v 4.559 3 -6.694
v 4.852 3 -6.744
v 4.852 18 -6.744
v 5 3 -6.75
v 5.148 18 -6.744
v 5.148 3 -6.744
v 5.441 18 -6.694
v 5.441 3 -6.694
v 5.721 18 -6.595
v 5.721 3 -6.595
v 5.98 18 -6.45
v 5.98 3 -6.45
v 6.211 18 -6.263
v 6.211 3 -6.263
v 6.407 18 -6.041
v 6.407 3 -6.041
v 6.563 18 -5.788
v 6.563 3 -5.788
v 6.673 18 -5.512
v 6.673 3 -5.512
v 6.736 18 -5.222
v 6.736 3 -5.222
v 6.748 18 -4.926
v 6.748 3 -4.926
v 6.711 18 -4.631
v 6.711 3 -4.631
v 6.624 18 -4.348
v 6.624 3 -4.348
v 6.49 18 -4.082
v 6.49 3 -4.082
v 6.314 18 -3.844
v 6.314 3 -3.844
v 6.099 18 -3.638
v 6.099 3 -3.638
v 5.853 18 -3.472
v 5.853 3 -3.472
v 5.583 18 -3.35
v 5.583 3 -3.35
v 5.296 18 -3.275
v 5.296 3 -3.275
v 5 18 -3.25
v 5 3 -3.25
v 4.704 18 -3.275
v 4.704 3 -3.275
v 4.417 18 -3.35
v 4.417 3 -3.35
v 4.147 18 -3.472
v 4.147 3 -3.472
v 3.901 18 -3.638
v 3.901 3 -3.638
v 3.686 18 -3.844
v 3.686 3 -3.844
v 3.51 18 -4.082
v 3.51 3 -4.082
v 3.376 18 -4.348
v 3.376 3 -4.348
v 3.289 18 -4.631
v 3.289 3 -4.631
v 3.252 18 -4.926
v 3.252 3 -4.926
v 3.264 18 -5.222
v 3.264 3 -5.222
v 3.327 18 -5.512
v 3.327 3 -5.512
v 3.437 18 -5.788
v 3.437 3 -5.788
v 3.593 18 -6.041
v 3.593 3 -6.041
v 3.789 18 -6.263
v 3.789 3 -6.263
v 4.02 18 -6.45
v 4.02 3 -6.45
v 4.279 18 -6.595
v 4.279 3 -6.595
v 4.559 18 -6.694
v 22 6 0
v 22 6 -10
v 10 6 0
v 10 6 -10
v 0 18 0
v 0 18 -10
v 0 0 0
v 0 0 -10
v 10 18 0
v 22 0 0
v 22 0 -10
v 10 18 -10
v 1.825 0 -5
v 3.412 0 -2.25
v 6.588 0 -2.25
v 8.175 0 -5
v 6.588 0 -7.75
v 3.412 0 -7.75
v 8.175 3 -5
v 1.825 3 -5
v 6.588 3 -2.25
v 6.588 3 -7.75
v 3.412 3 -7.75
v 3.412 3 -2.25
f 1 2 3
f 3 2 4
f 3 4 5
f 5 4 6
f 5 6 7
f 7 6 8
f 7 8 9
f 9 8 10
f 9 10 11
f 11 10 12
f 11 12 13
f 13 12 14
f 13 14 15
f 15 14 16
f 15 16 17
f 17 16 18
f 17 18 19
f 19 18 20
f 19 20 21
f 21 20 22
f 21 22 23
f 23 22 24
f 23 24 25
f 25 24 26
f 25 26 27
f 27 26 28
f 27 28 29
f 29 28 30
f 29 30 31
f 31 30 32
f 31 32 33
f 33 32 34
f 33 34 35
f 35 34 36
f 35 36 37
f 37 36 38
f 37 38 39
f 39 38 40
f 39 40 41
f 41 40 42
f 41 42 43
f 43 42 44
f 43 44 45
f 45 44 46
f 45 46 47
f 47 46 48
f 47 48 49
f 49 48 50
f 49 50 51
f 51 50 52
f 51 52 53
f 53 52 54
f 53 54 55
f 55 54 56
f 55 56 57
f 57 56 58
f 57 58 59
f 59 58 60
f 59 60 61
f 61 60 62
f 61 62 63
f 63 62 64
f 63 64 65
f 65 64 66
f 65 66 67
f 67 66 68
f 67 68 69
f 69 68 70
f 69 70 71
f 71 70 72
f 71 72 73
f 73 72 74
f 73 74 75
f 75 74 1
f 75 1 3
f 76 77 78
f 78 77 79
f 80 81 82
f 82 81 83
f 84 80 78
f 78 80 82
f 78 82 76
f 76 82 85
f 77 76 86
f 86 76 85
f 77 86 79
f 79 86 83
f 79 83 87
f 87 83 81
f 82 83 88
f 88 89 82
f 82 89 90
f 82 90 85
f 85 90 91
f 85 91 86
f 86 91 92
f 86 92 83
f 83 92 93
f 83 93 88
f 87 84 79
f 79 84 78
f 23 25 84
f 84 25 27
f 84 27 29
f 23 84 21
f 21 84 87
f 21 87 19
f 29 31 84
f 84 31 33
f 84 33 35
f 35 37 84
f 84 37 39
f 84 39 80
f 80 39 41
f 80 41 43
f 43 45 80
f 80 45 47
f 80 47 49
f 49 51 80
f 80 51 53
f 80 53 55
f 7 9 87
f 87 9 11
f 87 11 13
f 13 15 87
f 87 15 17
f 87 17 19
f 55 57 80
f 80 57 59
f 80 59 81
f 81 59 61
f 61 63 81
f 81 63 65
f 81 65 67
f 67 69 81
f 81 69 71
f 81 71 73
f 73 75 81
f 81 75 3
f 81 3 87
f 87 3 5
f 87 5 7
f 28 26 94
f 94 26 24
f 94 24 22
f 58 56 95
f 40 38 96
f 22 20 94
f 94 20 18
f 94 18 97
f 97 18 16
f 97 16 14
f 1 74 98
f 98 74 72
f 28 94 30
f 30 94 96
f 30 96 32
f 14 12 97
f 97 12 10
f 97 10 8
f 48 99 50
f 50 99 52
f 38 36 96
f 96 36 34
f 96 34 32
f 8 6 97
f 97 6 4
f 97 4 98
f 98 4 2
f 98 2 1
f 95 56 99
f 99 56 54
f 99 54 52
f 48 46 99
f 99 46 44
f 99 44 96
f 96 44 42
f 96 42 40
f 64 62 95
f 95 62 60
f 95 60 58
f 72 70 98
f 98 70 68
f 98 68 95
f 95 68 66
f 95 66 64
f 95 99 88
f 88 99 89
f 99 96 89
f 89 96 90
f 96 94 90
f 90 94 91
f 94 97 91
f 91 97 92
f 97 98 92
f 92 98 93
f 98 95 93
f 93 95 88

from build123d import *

# Parameters (mm, degrees)
SKETCH1_W           = 22
SKETCH1_H           = 10
BOSS_EXTRUDE1_DEPTH = 6
SKETCH2_W           = 10
SKETCH2_H           = 10
BOSS_EXTRUDE2_DEPTH = 12
SKETCH3_R           = 1.75
CUT_EXTRUDE1_DEPTH  = 31.133038347
CUT_EXTRUDE2_DEPTH  = 3


with BuildPart() as part:
    # Sketch1 → Boss-Extrude1 (new body)
    with BuildSketch(Plane(origin=(0, 0, 0), x_dir=(1, 0, 0), z_dir=(0, 1, 0))):
        with Locations((11, 5)):
            Rectangle(SKETCH1_W, SKETCH1_H)
    extrude(amount=BOSS_EXTRUDE1_DEPTH)

    # Sketch2 → Boss-Extrude2 (add)
    with BuildSketch(Plane(origin=(0, 6, 0), x_dir=(1, 0, 0), z_dir=(0, 1, 0))):
        with Locations((5, 5)):
            Rectangle(SKETCH2_W, SKETCH2_H)
    extrude(amount=BOSS_EXTRUDE2_DEPTH)

    # Sketch3 → Cut-Extrude1 (cut, through all)
    with BuildSketch(Plane(origin=(0, 18, 0), x_dir=(1, 0, 0), z_dir=(0, 1, 0))):
        with Locations(Location((5, 5, 0), (0, 0, 270))):
            Circle(SKETCH3_R)
    extrude(amount=-CUT_EXTRUDE1_DEPTH, mode=Mode.SUBTRACT)

    # Sketch4 → Cut-Extrude2 (cut)
    with BuildSketch(Plane.XZ):
        Polygon((1.824573519, -5), (3.41228676, -7.75), (6.58771324, -7.75), (8.175426481, -5), (6.58771324, -2.25), (3.41228676, -2.25), align=None)
    extrude(amount=-CUT_EXTRUDE2_DEPTH, mode=Mode.SUBTRACT)


solid = part.part
